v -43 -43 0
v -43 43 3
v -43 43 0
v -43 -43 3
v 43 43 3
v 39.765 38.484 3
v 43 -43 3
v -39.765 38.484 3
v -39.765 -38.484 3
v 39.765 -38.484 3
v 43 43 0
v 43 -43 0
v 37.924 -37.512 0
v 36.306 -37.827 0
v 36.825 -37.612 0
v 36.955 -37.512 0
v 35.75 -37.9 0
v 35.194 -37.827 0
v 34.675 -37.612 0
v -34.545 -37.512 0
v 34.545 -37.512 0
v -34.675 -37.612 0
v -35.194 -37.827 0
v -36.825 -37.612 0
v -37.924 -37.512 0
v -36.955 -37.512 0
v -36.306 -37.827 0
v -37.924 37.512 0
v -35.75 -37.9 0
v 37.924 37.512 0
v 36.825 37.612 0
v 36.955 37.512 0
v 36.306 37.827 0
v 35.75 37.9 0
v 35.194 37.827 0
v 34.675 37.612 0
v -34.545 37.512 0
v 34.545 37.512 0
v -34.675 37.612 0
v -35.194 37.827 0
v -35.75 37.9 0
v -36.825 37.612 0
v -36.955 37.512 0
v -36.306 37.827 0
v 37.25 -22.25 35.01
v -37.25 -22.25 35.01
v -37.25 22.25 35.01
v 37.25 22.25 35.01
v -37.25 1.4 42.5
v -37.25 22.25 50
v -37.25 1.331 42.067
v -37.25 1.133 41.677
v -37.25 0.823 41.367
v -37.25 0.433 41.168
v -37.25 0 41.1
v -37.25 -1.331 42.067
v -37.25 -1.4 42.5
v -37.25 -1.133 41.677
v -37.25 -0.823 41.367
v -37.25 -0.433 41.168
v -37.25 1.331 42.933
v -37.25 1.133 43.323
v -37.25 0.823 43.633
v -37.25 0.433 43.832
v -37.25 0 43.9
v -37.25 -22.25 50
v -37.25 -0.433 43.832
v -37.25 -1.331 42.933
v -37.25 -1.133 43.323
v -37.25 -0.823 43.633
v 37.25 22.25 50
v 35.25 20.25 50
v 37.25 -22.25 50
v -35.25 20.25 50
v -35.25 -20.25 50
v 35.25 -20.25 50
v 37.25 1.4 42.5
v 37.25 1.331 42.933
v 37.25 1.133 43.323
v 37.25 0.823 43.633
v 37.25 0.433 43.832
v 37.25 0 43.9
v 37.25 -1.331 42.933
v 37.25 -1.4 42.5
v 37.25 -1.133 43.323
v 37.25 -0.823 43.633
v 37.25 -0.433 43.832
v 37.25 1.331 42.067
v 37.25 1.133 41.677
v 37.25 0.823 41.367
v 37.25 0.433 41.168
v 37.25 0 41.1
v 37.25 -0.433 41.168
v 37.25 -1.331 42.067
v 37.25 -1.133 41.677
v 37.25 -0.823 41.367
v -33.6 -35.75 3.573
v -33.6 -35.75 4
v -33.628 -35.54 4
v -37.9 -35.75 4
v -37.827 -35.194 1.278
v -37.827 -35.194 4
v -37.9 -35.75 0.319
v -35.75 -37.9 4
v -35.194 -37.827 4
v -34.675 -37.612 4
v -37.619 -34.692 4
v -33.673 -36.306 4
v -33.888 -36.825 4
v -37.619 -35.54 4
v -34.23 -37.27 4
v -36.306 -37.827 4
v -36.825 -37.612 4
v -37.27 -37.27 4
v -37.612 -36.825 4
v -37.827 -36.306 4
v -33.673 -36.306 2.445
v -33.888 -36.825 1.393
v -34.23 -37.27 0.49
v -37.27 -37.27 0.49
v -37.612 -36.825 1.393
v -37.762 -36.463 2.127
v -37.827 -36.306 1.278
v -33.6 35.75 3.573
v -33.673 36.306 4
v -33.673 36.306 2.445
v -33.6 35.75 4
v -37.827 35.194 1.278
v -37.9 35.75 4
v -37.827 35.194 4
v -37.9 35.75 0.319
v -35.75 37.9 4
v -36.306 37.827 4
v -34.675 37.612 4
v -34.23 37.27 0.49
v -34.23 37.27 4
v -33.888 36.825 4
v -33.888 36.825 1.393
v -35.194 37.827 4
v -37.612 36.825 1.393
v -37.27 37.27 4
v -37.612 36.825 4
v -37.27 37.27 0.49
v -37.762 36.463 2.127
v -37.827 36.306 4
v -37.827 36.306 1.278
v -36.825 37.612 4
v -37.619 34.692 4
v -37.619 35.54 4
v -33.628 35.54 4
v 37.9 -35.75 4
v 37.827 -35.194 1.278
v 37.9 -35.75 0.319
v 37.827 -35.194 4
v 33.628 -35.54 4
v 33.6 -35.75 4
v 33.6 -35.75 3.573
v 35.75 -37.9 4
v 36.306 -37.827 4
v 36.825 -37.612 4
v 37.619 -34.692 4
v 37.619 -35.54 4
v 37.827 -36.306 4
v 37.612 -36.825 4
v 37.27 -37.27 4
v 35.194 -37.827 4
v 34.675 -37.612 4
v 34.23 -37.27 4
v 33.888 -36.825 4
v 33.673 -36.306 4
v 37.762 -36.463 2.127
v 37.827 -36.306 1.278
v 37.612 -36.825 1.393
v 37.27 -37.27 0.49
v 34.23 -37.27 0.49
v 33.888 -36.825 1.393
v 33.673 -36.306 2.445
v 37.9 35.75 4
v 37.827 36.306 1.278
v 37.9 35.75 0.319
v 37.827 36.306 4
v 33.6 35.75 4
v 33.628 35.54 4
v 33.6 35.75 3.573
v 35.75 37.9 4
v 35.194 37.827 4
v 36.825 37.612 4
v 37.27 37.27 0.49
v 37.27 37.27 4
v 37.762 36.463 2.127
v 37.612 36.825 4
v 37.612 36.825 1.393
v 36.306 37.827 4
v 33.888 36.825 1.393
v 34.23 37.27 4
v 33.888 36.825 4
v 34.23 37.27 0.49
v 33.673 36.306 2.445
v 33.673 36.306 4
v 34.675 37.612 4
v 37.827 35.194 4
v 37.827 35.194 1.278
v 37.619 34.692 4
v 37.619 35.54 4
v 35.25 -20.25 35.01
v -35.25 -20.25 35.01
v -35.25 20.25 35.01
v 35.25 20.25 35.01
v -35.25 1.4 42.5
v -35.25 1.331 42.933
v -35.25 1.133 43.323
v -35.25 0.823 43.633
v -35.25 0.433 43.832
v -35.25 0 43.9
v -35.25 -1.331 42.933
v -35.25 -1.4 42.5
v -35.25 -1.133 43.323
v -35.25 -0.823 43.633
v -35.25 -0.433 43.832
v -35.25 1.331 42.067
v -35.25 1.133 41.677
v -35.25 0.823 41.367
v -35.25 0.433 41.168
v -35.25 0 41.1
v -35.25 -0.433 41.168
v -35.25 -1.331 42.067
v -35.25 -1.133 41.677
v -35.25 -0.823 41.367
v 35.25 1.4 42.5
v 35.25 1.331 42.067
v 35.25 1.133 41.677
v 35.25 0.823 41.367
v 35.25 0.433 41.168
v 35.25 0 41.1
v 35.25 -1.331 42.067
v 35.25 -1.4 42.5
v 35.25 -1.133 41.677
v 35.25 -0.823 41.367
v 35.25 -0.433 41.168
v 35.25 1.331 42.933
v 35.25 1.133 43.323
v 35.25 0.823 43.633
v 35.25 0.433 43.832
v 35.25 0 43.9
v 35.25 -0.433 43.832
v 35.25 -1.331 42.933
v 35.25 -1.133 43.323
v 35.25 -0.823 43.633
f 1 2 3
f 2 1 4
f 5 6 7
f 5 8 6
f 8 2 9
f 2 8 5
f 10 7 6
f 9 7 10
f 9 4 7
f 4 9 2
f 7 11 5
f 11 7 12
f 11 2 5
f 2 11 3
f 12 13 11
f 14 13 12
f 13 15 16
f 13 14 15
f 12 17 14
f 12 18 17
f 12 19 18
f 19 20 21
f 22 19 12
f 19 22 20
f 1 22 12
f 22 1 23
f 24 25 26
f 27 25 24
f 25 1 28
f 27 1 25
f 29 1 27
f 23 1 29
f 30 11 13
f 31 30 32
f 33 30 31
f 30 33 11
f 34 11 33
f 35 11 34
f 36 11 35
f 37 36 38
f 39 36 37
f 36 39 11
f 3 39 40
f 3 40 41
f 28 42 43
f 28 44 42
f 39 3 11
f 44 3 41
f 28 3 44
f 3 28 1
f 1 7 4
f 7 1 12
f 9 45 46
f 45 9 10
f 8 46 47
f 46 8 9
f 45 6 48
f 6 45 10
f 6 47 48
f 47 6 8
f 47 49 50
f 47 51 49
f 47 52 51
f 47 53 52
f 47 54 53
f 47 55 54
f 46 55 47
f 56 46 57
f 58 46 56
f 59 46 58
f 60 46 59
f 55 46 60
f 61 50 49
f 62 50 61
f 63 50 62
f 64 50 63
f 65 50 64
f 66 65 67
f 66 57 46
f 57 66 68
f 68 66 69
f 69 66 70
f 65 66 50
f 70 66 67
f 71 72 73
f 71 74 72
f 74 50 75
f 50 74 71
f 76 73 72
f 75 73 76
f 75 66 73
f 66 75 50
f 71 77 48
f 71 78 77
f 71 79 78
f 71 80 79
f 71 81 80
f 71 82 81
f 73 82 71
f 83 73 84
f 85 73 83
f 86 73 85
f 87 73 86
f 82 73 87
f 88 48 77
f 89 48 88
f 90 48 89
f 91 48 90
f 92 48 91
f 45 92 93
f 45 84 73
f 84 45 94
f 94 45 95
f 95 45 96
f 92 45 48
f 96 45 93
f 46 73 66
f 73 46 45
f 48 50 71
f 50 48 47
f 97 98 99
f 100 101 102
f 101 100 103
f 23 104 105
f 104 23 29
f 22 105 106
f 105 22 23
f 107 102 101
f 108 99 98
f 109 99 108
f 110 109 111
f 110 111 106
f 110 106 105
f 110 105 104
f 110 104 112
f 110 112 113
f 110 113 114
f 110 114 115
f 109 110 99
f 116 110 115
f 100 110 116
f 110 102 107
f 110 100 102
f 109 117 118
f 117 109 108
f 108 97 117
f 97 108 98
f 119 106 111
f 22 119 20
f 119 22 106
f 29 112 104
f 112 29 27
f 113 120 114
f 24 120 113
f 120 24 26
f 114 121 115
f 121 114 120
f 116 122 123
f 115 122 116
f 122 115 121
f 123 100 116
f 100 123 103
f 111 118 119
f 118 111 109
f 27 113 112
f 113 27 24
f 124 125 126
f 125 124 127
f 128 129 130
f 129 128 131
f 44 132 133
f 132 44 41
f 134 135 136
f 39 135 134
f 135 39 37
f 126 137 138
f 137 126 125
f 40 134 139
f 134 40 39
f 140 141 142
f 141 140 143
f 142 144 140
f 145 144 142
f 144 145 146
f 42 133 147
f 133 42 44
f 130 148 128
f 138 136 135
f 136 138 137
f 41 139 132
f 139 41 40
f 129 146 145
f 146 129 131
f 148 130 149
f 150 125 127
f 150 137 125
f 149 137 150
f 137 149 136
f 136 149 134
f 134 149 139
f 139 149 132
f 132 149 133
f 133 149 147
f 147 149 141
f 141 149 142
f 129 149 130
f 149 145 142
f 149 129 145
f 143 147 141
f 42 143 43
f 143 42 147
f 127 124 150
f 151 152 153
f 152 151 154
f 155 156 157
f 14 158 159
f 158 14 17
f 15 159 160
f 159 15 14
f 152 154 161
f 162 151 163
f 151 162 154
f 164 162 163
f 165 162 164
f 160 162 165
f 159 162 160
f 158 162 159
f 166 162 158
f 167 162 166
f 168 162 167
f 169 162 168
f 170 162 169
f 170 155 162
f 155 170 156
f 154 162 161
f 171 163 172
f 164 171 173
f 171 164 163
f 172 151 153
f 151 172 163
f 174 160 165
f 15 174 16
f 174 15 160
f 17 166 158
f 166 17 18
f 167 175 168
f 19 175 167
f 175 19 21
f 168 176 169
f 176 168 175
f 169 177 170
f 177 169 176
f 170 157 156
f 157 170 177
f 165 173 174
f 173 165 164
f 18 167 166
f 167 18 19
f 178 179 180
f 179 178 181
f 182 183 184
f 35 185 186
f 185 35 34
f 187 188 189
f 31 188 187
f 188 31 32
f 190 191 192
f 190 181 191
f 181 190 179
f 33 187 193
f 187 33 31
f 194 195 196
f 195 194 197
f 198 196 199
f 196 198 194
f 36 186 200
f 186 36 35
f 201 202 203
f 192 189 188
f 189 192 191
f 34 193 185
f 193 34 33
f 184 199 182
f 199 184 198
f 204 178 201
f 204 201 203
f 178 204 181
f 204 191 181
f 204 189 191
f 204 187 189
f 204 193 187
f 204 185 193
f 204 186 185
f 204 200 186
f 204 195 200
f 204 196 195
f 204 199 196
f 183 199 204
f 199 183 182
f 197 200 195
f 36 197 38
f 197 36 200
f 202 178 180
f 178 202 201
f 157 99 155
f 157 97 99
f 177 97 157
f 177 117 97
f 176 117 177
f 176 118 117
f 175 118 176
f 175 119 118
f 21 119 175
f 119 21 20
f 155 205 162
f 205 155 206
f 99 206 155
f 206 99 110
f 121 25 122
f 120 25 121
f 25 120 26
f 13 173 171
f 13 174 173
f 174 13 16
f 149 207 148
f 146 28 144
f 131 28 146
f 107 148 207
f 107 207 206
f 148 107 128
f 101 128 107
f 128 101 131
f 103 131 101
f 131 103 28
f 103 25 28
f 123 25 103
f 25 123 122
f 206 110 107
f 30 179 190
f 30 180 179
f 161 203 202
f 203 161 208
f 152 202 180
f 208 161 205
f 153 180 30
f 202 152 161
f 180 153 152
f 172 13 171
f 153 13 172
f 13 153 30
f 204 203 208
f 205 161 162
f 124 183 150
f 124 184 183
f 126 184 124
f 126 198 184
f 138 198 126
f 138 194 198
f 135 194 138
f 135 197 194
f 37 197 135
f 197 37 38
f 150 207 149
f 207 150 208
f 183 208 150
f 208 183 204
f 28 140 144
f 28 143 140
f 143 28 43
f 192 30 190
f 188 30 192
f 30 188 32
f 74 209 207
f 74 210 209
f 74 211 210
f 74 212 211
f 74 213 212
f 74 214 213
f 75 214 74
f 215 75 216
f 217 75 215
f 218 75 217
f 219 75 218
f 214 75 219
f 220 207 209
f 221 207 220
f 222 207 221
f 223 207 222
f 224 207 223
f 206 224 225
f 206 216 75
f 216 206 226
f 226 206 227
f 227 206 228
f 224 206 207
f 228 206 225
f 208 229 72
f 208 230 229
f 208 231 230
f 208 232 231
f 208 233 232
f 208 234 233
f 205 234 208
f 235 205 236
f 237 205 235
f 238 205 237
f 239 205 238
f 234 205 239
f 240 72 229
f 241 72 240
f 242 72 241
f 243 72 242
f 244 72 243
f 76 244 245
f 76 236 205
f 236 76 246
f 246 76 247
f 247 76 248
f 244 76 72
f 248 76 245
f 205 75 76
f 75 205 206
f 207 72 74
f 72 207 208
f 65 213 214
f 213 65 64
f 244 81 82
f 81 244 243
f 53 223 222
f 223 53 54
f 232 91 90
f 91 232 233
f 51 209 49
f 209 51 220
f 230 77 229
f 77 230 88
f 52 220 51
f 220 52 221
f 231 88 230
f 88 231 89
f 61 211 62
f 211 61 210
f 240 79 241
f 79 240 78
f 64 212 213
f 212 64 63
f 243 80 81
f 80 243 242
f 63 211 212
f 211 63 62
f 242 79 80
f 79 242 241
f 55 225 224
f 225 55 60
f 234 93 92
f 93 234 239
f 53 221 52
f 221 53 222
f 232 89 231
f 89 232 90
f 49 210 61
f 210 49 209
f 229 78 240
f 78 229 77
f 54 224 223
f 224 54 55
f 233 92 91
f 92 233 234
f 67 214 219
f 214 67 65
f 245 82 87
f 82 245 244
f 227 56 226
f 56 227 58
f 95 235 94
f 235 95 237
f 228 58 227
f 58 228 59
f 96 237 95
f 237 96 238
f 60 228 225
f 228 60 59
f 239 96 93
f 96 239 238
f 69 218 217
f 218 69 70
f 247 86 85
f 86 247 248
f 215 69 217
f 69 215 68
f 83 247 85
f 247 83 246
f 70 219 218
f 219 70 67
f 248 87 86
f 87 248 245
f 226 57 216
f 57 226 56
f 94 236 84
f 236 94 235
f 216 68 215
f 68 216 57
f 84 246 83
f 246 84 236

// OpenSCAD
// =============================================================================
// pa_fan_duct.scad  -  80 mm fan to PA heatsink duct
// Purpose:        Square-to-rectangle duct that blows an 80 mm fan (screw holes
//                 71.5 mm apart) onto the fins of a 2.4 GHz PA heatsink. The outlet
//                 is a sleeve that slides over the heatsink (width x height) and is
//                 clamped by two M3 self-tapping screws. Used in the outdoor box
//                 (EA5EN photos: heatsinked PA, air inlet/outlet fans).
// Print settings: PETG or ASA (hot PA: ASA preferred, PETG softens ~80 C).
//                 3 perimeters, 20 % infill, 0.2 mm layers, NO supports.
//                 Print flange down.
// RF note:        Keep the duct away from the 2.4 GHz connectors and feed.
//                 NEVER use carbon-fibre or metal-filled filament: conductive near
//                 the PA output, can detune or short RF parts. Do not run a fan or
//                 its wires at the feed: the TX chain should be in a separate box.
// Licence:        GPL-3.0-or-later (CERN-OHL-S-2.0 optional for the hardware design).
// Units:          millimetres.
// =============================================================================

fan        = 80;
fan_holes  = 71.5;   // hole spacing
fan_hole_d = 4.3;
flange_t   = 3;
wall       = 2;
hs_w       = 70;     // heatsink width (measure it)
hs_h       = 40;     // heatsink height (measure it)
hs_clr     = 0.5;
duct_len   = 35;     // transition length
sleeve_len = 15;     // sleeve over the heatsink
screw_d    = 2.8;    // M3 self-tapping pilot

fo = fan + 6;                       // flange outer size
so_w = hs_w + hs_clr + 2 * wall;
so_h = hs_h + hs_clr + 2 * wall;

module slab(w, h, z, t = 0.01) { translate([-w / 2, -h / 2, z]) cube([w, h, t]); }

difference() {
    union() {
        slab(fo, fo, 0, flange_t);
        hull() {
            slab(fan, fan, 0);
            slab(so_w, so_h, duct_len);
        }
        translate([-so_w / 2, -so_h / 2, duct_len]) cube([so_w, so_h, sleeve_len]);
    }
    hull() {
        slab(fan - 2 * wall, fan - 2 * wall, -1);
        slab(hs_w + hs_clr, hs_h + hs_clr, duct_len);
    }
    translate([-(hs_w + hs_clr) / 2, -(hs_h + hs_clr) / 2, duct_len - 0.01]) cube([hs_w + hs_clr, hs_h + hs_clr, sleeve_len + 1]);
    for (sx = [-1, 1], sy = [-1, 1])
        translate([sx * fan_holes / 2, sy * fan_holes / 2, -1]) cylinder(d = fan_hole_d, h = flange_t + 2, $fn = 24);
    for (z = [duct_len + sleeve_len / 2])
        translate([0, 0, z]) rotate([0, 90, 0]) cylinder(d = screw_d, h = so_w + 2, center = true, $fn = 20);
}
